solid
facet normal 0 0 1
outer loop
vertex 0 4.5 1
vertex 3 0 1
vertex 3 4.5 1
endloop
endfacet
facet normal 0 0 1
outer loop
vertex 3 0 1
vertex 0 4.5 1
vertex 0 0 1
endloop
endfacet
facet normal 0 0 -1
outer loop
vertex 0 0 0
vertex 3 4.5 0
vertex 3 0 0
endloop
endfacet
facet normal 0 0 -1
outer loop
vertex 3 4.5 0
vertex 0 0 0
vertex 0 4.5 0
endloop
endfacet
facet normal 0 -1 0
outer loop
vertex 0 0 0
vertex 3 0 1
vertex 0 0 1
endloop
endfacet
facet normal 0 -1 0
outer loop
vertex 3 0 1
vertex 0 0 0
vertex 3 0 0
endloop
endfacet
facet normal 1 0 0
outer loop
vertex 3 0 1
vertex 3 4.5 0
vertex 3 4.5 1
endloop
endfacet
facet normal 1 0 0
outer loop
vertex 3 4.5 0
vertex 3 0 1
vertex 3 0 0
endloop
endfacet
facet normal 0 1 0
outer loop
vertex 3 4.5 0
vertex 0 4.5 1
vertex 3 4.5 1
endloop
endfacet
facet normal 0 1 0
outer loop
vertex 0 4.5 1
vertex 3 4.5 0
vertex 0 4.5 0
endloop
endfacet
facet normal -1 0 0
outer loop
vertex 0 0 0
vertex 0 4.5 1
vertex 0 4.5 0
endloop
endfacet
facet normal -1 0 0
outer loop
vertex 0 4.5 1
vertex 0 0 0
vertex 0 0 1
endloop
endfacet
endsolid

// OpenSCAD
/* Warning, this is a very basic generator with a lot of approximation 
input data : [VDFN, 3TW, 3x4.5x1.0mm, 16, , B, C04-00572B]
generated by com.zoubworld.electronics.cad.model3d.Basic
Date : Sun Feb 15 10:50:49 CET 2026
*/

//body
color("black")
translate([0,0,0])
cube([3.0,4.5,1.0], center=false);
